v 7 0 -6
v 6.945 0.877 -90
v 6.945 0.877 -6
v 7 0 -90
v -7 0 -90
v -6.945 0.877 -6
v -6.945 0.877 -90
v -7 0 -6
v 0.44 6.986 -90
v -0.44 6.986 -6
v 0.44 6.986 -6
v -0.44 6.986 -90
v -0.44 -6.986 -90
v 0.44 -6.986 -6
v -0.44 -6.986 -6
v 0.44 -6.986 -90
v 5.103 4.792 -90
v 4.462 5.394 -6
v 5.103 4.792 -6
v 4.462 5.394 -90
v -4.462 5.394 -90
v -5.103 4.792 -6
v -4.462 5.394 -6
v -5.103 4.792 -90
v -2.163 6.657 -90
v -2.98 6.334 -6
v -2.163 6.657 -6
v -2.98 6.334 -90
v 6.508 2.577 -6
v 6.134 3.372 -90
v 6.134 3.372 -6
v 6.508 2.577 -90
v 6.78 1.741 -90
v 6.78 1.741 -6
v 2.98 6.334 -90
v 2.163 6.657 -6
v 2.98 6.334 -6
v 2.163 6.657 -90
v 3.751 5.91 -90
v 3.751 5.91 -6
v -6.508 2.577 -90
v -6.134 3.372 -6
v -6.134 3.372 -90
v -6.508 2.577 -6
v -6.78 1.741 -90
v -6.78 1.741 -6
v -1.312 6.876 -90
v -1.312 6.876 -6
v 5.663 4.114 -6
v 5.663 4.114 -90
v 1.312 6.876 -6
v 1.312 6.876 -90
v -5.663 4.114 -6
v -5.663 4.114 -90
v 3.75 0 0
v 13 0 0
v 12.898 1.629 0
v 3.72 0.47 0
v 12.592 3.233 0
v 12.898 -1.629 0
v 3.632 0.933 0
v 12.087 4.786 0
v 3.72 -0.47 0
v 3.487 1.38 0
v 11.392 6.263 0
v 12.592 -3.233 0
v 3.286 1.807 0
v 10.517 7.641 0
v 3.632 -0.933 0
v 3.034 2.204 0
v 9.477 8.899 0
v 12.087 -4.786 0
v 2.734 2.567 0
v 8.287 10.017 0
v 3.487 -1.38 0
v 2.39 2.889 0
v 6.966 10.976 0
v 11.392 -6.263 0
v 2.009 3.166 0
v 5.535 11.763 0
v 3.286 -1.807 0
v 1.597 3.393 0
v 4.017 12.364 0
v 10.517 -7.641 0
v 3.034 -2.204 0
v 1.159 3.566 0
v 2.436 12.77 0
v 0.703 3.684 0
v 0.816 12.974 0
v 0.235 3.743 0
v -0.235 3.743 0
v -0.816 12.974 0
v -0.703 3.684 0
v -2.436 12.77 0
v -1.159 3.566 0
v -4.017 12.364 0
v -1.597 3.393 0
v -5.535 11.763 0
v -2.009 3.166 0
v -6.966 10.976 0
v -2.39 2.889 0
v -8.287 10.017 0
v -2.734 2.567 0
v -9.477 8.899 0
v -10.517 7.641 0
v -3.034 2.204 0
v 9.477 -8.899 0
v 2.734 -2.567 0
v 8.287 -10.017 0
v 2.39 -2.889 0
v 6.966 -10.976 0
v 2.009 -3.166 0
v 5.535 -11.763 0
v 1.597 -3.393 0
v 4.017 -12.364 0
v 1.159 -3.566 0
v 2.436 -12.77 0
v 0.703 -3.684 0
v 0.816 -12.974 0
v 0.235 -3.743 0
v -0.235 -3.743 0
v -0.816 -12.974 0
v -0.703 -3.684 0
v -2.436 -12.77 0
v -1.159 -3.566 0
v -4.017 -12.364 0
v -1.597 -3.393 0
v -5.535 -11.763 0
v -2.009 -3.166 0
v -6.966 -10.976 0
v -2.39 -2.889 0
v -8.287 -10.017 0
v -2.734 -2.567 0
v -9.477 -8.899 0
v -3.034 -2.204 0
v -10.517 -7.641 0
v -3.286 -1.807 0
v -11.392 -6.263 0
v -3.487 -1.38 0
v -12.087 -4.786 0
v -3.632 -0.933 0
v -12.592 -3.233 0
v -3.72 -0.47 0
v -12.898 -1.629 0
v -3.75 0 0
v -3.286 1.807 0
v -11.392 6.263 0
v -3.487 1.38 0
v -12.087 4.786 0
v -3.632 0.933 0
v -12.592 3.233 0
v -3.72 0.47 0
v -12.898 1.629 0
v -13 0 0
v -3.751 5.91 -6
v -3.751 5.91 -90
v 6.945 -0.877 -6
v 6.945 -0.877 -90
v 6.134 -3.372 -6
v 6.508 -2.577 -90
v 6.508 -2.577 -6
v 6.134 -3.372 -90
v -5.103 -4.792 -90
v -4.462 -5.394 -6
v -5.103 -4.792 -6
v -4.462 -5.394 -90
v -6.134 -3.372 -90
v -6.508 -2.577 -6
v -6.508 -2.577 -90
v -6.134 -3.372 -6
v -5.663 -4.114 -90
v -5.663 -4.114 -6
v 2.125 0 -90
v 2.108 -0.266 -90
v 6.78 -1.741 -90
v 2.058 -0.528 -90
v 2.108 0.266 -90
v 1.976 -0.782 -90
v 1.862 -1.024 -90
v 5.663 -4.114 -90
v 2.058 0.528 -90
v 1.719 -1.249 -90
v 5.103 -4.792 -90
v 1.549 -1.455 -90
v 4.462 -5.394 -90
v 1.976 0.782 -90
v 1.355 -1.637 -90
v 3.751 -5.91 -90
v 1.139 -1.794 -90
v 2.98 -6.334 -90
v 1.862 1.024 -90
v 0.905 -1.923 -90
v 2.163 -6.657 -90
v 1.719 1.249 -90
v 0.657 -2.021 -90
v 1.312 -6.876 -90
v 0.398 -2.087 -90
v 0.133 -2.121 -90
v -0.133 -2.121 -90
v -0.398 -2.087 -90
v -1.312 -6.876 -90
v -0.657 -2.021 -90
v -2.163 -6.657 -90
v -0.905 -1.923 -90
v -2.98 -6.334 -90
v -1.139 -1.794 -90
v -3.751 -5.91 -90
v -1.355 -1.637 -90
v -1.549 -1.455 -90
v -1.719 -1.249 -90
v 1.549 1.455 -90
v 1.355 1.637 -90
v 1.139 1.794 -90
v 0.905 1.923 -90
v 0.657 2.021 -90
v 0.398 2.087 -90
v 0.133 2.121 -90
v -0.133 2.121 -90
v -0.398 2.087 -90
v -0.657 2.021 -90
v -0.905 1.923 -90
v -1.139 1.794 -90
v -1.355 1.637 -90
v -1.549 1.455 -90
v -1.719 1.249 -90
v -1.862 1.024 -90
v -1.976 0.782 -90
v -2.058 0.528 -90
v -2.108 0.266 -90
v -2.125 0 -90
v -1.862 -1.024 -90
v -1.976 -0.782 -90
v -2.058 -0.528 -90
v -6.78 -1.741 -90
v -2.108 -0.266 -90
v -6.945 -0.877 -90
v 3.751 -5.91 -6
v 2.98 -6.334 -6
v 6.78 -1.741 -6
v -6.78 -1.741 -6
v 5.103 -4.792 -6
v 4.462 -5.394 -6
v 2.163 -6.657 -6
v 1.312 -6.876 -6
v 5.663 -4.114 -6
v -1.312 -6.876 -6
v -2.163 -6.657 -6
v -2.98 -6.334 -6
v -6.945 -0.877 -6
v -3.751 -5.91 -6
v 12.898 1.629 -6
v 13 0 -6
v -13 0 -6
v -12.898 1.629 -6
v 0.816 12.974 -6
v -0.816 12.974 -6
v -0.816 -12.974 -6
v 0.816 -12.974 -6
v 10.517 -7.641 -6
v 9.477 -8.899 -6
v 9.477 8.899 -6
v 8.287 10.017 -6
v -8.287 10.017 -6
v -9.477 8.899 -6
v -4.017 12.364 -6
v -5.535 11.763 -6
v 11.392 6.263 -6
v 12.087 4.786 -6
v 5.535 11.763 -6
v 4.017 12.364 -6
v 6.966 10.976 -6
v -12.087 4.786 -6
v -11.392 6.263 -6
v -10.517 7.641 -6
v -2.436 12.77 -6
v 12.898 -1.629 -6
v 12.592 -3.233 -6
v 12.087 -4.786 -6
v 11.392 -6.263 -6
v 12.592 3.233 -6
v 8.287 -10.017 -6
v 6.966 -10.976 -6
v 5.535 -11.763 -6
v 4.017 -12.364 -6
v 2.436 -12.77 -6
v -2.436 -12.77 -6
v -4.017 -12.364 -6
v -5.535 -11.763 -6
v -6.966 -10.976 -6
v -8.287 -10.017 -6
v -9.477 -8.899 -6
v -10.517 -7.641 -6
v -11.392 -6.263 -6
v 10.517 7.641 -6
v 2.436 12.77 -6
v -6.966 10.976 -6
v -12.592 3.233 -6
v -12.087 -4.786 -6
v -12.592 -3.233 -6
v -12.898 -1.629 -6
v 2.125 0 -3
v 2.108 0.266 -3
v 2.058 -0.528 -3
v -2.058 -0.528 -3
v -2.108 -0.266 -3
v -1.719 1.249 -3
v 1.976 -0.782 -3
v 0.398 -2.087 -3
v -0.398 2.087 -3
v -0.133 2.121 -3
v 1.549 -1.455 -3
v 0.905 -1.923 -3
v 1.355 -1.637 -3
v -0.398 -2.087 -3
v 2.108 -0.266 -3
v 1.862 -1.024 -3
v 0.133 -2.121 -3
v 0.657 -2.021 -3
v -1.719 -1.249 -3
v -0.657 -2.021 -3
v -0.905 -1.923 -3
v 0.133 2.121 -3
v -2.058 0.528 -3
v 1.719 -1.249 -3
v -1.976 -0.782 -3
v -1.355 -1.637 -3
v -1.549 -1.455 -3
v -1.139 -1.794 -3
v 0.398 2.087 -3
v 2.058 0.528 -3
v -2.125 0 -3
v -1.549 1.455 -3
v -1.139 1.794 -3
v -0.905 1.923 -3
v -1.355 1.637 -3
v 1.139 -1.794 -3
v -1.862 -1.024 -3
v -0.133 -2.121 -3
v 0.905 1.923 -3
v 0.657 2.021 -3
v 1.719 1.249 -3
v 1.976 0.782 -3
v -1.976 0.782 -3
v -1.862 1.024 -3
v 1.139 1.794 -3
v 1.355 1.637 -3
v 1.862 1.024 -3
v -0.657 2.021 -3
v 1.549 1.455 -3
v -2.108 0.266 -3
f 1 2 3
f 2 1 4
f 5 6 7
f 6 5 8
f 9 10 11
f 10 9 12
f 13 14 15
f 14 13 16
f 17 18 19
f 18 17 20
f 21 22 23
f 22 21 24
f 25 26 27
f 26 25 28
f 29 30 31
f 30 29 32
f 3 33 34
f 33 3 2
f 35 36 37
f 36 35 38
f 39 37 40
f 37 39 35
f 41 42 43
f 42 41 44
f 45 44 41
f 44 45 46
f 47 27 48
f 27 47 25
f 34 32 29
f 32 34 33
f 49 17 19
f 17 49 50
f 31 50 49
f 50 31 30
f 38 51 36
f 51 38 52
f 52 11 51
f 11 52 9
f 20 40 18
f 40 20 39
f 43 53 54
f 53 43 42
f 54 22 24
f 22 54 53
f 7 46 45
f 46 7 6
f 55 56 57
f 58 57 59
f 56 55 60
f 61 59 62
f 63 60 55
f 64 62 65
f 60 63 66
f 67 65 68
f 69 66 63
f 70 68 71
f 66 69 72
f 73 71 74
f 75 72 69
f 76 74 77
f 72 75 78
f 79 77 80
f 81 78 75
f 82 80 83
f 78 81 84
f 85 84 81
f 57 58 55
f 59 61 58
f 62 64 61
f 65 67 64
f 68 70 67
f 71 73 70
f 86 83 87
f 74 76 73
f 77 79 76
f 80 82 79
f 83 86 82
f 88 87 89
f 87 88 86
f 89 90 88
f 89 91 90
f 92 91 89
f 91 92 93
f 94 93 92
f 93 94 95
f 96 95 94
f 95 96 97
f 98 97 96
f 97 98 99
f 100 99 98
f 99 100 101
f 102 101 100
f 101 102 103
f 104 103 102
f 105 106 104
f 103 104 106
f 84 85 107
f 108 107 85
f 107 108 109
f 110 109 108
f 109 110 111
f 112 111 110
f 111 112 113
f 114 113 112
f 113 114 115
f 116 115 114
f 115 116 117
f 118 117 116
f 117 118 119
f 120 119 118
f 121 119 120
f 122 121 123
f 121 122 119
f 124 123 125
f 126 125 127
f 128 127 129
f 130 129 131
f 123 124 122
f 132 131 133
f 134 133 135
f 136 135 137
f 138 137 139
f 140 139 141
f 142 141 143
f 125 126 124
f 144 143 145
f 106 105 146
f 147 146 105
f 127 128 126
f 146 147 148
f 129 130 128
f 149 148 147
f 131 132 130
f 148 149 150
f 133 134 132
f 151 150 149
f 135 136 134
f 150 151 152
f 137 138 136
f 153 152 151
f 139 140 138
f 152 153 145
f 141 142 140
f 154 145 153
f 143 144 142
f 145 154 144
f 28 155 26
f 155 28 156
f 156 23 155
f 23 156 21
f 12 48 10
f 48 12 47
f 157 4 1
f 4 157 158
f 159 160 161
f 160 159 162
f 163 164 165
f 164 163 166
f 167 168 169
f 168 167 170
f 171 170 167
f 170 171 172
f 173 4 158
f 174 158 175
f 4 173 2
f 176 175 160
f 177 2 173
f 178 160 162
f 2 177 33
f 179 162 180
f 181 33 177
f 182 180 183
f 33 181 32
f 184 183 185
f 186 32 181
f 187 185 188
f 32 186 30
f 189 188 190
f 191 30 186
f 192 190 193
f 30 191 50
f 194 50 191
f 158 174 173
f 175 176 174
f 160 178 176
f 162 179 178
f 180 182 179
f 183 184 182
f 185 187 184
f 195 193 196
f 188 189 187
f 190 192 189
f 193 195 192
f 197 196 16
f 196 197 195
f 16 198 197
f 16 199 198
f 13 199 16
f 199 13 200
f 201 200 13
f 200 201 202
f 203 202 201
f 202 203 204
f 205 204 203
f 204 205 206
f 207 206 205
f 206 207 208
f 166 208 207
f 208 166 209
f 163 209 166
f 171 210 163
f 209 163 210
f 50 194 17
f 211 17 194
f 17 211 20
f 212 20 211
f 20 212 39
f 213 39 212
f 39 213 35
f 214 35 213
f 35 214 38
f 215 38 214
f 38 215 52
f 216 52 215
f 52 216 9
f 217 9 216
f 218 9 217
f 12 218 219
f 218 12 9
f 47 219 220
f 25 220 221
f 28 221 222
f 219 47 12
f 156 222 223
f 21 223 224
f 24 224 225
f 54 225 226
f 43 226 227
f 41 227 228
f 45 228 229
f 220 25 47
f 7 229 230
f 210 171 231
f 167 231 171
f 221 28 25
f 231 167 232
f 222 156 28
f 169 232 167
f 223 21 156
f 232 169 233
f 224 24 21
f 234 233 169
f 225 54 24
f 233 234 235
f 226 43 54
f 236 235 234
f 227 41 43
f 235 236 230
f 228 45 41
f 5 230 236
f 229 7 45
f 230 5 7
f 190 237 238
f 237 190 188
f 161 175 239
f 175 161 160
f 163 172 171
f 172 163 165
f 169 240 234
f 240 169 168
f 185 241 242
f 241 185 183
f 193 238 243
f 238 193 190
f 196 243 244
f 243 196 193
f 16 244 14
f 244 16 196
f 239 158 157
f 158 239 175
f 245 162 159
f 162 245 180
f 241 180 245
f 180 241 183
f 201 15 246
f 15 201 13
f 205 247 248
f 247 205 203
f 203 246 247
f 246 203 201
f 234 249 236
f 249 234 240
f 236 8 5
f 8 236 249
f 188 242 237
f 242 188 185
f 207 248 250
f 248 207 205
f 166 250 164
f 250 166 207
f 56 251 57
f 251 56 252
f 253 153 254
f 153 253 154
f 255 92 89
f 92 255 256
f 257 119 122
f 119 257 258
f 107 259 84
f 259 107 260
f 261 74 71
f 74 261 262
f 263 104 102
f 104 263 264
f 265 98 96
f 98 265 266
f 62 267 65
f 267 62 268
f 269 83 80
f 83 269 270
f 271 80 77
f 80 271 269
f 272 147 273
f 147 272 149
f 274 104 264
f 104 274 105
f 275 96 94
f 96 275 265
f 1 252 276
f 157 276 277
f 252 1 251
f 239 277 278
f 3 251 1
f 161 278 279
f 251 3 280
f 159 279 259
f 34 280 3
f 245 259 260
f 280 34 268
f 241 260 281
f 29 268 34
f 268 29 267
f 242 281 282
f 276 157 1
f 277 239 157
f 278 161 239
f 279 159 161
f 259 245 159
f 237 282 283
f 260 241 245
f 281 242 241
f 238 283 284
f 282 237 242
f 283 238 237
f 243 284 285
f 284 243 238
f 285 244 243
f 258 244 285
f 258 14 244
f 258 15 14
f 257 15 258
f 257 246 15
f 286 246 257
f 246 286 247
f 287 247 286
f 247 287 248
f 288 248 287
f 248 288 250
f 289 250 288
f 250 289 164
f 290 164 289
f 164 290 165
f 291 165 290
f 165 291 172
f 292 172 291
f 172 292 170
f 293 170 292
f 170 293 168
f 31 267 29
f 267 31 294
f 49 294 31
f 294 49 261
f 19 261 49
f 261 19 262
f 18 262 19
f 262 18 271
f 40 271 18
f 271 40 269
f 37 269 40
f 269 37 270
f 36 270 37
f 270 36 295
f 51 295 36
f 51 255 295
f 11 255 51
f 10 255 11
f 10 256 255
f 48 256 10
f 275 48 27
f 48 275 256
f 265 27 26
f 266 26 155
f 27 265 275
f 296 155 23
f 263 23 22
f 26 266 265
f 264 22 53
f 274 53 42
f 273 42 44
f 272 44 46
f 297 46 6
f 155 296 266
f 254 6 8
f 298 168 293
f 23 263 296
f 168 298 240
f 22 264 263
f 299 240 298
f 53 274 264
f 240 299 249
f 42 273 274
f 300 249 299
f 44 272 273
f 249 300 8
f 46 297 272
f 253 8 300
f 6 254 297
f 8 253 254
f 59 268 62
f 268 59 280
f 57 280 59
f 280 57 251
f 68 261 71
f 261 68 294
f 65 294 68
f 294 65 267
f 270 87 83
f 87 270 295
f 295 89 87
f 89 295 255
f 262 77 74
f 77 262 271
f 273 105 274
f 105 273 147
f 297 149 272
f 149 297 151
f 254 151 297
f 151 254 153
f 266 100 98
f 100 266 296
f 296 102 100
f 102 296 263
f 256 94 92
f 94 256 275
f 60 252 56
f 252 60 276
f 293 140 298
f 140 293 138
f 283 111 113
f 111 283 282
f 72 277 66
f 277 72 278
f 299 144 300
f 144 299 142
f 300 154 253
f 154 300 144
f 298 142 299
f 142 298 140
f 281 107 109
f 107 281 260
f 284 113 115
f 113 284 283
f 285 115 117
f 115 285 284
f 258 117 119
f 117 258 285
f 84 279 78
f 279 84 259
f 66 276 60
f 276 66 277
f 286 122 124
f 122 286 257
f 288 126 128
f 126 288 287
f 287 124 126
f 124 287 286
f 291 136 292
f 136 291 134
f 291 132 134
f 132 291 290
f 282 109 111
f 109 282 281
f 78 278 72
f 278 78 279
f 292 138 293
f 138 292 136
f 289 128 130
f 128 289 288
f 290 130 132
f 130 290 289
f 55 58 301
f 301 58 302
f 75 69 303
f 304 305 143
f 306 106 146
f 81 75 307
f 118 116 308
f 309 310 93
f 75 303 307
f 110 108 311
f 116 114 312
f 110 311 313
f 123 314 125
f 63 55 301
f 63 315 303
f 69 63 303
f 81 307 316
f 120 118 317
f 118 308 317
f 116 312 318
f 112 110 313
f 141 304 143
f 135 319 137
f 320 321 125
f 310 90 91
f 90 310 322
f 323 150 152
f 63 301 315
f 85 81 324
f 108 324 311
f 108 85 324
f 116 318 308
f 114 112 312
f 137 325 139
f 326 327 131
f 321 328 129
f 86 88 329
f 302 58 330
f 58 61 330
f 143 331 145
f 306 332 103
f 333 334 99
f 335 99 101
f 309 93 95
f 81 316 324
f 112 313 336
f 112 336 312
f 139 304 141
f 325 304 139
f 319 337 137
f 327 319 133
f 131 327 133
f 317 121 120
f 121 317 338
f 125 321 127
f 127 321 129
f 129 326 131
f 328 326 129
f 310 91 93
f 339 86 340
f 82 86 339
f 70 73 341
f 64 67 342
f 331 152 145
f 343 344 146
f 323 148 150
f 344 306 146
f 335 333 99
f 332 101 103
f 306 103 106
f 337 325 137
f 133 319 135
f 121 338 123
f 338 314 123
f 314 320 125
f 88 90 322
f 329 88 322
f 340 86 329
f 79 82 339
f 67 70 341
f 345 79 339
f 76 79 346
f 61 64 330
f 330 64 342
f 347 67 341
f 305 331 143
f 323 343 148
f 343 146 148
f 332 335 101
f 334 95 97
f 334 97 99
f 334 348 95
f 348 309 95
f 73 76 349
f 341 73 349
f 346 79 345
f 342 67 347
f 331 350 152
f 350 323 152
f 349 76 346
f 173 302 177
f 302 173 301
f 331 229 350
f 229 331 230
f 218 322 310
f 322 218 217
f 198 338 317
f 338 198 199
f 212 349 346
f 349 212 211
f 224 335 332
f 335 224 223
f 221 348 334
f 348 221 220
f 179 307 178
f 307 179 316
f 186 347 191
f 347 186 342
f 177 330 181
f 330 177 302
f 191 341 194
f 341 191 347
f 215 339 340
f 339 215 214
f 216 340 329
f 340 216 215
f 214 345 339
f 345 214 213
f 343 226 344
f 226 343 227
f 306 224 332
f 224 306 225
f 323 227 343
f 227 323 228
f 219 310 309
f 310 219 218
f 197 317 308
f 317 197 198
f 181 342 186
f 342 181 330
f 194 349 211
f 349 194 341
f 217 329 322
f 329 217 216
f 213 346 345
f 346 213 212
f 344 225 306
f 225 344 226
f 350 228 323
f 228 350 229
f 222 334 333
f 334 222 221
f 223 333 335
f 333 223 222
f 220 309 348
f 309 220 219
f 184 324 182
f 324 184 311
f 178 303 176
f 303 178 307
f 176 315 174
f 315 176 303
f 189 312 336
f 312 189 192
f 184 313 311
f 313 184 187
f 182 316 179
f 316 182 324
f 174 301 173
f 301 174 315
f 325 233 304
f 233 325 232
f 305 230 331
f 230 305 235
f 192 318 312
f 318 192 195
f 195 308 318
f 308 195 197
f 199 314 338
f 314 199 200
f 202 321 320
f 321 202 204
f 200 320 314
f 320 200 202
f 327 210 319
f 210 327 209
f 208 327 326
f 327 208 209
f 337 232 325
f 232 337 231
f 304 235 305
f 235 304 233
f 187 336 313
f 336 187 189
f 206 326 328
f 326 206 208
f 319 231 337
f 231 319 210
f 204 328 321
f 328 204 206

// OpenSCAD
$fn = 50;


difference() {
	union() {
		translate(v = [0, 0, -90.0000000000]) {
			cylinder(h = 90, r = 7.0000000000);
		}
		translate(v = [0, 0, -6.0000000000]) {
			cylinder(h = 6, r = 13.0000000000);
		}
	}
	union() {
		translate(v = [0, 0, 0]) {
			rotate(a = [0, 0, 0]) {
				difference() {
					union() {
						#translate(v = [0, 0, -90.0000000000]) {
							cylinder(h = 90, r = 2.0000000000);
						}
						#translate(v = [0, 0, -3]) {
							cylinder(h = 3, r = 7.0000000000, r1 = 2.1250000000, r2 = 3.7500000000);
						}
						#translate(v = [0, 0, -90.0000000000]) {
							cylinder(h = 90, r = 2.1250000000);
						}
						#translate(v = [0, 0, -90.0000000000]) {
							cylinder(h = 90, r = 2.0000000000);
						}
					}
					union();
				}
			}
		}
	}
}
